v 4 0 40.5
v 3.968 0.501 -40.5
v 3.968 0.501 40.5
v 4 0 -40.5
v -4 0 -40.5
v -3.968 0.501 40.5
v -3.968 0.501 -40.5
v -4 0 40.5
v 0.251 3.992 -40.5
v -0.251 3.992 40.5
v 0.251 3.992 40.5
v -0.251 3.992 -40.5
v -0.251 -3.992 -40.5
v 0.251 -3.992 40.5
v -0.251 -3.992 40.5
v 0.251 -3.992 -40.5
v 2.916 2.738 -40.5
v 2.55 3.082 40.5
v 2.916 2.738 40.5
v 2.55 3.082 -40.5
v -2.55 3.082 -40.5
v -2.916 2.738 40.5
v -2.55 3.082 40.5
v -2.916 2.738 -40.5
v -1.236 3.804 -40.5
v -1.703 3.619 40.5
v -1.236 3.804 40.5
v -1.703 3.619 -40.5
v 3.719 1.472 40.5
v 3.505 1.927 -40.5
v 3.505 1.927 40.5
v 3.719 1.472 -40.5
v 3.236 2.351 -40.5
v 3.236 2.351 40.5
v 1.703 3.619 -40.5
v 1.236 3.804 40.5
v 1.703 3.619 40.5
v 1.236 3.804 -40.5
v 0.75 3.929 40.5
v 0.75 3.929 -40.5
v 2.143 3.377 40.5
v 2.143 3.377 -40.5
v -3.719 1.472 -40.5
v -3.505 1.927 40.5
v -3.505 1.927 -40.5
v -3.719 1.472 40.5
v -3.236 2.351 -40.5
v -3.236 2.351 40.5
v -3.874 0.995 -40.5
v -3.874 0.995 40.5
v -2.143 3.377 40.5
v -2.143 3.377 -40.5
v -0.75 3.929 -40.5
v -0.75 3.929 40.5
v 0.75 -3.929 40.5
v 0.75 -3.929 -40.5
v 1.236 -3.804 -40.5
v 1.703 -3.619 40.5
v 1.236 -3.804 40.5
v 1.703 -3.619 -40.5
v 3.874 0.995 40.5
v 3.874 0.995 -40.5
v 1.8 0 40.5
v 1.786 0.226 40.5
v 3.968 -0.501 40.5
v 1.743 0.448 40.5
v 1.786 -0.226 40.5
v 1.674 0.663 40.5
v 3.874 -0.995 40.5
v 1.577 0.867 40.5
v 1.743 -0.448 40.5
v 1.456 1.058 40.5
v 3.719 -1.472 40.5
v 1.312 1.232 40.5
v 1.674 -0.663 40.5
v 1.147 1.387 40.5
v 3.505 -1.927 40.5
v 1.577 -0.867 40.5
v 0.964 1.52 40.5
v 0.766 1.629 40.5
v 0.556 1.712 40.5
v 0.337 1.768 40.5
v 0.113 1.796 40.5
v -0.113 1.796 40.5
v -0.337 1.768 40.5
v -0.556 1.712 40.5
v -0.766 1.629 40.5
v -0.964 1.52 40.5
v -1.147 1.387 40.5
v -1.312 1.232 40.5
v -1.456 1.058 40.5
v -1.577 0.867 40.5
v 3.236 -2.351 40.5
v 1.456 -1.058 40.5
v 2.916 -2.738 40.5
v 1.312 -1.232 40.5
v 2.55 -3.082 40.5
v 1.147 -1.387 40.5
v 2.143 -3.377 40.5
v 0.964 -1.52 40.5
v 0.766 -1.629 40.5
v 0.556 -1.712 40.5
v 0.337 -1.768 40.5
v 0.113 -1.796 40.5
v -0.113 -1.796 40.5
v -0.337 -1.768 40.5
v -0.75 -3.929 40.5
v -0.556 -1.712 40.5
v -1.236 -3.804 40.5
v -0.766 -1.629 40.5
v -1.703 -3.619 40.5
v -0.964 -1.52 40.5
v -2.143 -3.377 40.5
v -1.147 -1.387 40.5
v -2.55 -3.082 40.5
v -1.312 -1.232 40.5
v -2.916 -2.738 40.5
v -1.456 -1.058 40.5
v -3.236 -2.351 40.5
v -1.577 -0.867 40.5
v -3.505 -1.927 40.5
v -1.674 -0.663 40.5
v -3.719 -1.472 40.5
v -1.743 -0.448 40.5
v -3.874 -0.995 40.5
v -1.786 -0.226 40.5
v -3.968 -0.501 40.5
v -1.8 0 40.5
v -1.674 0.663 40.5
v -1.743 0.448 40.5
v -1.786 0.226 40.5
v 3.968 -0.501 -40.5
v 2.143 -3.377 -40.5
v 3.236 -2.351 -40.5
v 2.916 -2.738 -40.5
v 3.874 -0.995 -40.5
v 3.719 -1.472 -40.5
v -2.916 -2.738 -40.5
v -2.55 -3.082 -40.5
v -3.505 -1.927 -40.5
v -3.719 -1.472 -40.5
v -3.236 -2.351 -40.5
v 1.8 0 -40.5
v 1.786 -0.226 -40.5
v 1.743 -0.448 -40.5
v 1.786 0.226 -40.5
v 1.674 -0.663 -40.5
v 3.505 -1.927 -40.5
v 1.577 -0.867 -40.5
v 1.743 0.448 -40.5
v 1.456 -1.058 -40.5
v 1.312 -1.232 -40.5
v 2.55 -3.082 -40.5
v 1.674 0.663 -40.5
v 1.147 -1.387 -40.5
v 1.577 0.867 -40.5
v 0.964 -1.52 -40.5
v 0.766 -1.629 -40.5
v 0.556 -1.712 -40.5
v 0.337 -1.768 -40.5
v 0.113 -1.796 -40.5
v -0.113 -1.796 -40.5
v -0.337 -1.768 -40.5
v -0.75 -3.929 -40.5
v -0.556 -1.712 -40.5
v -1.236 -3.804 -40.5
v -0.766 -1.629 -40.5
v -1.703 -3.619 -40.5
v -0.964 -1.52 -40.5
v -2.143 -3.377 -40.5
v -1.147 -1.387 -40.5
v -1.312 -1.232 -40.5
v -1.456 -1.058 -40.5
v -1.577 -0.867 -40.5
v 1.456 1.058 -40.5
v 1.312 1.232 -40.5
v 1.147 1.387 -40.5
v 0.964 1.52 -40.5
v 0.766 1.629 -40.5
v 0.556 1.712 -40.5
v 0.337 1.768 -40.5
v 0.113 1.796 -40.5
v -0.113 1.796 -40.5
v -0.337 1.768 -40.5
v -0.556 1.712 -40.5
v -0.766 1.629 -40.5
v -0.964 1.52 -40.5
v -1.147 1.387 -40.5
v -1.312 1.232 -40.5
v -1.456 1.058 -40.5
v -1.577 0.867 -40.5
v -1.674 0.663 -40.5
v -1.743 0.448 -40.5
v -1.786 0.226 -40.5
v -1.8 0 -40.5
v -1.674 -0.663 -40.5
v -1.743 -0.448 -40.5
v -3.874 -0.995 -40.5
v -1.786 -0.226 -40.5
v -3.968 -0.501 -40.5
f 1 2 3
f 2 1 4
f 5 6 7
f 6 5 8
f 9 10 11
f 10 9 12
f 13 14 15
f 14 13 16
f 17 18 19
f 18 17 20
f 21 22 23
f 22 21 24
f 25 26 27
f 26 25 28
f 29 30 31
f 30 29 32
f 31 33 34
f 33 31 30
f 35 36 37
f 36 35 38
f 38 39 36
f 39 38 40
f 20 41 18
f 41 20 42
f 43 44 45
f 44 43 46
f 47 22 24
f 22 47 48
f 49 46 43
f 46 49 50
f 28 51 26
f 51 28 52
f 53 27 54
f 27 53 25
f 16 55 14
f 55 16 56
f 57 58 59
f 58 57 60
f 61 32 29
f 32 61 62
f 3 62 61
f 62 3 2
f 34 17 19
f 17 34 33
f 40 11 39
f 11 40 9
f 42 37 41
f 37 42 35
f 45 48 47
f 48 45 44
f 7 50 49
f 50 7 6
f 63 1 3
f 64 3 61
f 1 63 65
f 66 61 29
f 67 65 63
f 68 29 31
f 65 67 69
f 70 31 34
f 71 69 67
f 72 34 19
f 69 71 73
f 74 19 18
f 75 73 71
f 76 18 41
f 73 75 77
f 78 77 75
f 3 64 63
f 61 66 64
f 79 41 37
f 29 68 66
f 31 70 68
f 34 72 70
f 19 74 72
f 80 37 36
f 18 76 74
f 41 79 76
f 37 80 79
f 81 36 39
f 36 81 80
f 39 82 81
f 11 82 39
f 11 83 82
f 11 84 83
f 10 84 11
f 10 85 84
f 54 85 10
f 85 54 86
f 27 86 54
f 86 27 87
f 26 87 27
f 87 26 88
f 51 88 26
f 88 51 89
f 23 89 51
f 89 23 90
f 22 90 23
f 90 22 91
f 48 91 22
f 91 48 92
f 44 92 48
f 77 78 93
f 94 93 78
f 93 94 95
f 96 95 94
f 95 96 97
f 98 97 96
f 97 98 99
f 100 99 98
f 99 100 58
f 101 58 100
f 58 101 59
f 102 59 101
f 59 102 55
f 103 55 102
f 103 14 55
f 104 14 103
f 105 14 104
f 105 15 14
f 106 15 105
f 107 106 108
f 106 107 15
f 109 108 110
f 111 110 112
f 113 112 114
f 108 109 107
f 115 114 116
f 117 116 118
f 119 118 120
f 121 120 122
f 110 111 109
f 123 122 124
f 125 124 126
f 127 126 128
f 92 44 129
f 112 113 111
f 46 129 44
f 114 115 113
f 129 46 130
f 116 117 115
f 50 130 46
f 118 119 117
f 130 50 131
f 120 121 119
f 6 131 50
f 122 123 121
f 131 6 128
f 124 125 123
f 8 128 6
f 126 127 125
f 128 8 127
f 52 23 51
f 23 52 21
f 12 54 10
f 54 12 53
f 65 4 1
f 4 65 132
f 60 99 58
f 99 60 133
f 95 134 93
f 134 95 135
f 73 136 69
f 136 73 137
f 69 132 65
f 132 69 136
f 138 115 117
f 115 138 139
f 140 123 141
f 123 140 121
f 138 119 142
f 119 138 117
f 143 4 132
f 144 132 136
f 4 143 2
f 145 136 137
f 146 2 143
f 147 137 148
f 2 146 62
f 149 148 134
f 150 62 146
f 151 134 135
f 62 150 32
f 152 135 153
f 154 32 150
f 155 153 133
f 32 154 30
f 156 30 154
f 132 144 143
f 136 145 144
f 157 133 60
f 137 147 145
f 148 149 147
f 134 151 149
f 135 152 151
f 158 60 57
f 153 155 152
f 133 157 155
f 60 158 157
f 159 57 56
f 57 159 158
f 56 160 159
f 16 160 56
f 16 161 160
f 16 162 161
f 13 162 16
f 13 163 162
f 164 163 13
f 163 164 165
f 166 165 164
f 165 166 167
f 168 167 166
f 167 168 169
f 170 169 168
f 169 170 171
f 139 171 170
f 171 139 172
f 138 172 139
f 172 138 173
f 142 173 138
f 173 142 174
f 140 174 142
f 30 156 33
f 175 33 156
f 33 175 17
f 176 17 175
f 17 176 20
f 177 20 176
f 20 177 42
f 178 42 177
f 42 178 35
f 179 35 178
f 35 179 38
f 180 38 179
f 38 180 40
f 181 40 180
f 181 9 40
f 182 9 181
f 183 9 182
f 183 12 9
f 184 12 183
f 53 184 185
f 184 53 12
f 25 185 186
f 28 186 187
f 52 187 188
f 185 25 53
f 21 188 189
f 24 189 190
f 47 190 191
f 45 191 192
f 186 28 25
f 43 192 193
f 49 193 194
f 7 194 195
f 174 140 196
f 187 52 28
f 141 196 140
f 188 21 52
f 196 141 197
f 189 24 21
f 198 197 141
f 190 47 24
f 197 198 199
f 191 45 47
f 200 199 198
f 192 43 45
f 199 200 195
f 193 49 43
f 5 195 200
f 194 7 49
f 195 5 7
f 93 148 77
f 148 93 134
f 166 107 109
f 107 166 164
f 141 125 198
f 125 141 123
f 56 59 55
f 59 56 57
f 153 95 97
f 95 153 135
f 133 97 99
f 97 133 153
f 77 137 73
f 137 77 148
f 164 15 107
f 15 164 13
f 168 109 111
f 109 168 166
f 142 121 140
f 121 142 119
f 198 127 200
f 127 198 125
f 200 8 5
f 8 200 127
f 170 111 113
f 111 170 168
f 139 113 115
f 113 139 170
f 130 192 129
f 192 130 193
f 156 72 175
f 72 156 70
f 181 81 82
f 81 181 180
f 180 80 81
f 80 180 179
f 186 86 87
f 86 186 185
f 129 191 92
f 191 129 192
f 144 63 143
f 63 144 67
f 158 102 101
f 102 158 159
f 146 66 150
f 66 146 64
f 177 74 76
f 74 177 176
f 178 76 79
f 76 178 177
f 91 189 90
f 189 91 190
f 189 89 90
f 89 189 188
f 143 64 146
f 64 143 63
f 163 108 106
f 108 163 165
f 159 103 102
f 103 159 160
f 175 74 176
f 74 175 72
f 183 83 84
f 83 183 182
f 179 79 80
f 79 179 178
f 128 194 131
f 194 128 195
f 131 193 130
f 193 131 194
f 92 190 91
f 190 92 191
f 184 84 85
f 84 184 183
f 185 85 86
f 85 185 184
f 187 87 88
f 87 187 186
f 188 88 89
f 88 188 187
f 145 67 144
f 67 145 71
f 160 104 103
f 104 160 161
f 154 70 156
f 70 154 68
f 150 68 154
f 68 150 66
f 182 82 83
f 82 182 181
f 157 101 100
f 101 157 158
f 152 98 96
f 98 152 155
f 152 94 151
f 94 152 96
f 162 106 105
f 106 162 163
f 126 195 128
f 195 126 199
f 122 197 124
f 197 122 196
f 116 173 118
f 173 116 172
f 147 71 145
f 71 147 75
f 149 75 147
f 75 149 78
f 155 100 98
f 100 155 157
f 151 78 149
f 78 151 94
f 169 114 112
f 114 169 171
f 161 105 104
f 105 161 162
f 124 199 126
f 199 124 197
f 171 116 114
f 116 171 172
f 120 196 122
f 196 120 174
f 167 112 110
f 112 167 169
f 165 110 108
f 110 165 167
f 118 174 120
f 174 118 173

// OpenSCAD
$fn = 50;


difference() {
	union() {
		translate(v = [0, 0, -40.5000000000]) {
			cylinder(h = 81, r = 4.0000000000);
		}
	}
	union() {
		translate(v = [0, 0, -100.0000000000]) {
			cylinder(h = 200, r = 1.8000000000);
		}
	}
}
